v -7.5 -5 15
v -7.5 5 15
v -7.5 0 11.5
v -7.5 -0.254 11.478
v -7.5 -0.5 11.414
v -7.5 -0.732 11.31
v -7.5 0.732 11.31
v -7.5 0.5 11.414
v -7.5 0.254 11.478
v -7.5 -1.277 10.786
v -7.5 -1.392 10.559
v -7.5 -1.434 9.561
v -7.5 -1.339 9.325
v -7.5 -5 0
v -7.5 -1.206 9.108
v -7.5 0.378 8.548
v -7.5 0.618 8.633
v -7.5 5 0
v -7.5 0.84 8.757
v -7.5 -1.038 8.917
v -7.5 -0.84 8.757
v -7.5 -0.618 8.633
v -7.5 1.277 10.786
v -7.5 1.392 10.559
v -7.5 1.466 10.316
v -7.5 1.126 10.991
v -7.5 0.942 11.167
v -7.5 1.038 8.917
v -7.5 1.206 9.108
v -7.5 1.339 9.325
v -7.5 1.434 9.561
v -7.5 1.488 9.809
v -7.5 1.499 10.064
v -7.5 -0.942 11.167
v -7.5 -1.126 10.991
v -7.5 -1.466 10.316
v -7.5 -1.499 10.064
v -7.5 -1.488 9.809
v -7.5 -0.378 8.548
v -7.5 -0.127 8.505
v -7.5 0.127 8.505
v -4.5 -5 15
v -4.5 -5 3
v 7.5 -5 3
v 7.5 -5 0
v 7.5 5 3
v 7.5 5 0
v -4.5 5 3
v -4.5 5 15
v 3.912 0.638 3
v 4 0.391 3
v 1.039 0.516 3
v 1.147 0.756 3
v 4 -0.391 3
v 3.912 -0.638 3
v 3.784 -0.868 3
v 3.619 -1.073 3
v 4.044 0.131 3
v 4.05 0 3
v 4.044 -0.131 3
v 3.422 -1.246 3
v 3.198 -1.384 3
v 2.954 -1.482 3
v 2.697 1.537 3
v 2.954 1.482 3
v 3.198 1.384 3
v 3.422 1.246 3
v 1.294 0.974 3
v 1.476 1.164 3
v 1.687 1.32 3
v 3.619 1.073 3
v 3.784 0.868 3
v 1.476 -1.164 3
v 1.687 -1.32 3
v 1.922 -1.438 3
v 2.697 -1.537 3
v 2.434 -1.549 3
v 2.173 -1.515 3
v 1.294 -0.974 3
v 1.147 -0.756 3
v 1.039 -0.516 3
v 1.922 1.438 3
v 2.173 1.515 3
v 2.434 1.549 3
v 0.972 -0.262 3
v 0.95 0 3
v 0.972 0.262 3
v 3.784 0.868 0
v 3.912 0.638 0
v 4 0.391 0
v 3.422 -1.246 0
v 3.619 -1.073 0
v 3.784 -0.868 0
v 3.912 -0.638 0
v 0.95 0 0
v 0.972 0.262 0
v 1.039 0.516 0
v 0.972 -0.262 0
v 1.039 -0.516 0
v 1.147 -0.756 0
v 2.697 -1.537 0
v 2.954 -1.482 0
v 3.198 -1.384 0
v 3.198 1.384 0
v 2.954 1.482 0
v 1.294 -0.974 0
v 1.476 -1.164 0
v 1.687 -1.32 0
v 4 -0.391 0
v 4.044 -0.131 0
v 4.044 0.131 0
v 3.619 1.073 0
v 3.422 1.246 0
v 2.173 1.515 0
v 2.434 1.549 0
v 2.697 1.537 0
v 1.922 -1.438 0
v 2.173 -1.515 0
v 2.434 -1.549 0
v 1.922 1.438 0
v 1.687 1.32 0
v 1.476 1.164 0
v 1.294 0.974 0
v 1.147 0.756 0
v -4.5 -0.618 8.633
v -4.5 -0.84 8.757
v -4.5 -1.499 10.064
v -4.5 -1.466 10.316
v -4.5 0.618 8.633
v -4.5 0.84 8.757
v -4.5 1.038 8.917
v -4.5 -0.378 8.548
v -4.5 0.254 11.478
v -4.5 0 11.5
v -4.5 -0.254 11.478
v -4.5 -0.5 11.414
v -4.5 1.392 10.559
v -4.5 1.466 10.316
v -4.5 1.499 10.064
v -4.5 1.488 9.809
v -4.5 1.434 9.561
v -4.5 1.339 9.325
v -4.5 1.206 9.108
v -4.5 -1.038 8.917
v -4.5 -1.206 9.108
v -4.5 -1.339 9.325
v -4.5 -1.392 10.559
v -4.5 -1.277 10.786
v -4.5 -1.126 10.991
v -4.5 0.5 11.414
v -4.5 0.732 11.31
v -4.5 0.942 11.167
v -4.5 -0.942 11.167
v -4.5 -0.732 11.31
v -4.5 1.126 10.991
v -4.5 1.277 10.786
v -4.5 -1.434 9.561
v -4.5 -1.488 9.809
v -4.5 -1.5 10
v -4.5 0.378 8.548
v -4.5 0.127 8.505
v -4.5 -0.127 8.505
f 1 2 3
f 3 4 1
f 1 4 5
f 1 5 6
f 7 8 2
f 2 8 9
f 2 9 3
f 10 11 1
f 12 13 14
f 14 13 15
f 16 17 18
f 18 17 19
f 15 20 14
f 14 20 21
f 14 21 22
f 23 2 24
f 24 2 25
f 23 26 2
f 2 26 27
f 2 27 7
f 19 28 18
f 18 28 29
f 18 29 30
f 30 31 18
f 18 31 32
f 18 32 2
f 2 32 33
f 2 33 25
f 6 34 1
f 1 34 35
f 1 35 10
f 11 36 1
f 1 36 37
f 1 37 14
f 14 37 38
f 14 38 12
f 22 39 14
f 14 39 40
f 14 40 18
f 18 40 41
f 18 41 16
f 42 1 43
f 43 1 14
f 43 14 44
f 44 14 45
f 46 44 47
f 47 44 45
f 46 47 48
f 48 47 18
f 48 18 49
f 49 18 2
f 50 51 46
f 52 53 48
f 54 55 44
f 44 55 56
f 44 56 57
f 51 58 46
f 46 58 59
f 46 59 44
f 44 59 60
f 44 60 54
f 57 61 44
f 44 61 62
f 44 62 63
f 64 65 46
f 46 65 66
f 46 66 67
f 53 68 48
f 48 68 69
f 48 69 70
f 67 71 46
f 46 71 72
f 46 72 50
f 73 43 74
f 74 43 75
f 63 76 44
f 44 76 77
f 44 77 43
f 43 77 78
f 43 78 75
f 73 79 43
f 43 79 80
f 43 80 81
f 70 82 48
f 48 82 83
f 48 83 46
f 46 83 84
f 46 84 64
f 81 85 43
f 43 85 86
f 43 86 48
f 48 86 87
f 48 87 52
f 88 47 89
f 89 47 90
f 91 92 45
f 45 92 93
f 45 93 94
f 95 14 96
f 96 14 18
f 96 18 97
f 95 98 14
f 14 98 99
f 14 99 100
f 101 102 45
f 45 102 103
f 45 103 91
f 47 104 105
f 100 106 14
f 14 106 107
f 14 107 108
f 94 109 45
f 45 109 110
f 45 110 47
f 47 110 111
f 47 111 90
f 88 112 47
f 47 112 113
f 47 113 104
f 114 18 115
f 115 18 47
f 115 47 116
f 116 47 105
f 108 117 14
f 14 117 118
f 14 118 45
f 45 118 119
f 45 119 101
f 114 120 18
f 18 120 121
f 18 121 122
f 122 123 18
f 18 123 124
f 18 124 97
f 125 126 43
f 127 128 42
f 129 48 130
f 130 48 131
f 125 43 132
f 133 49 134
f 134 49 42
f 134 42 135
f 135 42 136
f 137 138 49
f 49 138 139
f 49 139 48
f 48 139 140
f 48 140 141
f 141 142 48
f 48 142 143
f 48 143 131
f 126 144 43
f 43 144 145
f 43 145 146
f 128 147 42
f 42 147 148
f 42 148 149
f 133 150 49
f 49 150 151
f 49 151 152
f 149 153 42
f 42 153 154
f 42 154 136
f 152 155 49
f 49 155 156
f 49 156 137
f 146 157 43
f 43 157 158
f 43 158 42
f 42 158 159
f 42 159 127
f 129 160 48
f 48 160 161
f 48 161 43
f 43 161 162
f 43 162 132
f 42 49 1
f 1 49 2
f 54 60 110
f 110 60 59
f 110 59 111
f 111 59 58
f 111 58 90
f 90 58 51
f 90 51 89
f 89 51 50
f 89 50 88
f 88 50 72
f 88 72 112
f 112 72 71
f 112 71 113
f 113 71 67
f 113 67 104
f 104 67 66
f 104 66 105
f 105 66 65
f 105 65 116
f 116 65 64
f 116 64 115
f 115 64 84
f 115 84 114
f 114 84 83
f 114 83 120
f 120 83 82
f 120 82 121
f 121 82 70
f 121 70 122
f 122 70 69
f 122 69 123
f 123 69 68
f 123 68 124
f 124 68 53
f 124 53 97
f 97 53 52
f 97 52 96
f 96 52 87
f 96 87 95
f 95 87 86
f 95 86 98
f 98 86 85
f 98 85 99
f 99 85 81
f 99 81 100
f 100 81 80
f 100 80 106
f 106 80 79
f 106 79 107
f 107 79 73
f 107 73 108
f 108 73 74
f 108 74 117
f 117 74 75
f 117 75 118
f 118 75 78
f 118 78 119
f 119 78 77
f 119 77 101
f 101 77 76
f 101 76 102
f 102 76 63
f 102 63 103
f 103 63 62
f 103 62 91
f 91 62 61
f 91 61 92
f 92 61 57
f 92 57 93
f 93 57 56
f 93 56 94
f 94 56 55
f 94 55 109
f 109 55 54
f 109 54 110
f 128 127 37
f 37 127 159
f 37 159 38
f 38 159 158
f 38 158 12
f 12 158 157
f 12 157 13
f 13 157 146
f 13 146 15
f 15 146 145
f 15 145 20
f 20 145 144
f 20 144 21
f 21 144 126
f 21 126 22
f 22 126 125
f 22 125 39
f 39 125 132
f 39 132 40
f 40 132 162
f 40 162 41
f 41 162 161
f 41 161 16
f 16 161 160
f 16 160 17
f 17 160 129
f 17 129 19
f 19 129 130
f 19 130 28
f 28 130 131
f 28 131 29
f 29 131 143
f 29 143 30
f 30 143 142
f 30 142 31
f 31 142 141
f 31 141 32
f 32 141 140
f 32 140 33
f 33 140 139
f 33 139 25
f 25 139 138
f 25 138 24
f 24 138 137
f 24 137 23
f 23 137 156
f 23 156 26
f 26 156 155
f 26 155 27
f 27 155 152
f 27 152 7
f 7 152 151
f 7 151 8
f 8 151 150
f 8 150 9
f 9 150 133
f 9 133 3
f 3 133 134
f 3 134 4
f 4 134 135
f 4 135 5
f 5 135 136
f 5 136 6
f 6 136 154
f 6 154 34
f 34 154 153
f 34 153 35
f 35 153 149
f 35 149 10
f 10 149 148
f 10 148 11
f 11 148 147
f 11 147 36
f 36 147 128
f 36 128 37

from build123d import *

# Parameters (mm, degrees)
SKETCH_1_W          = 15
SKETCH_1_H          = 10
EXTRUDE_1_DEPTH     = 3
SKETCH_2_W          = 3
SKETCH_2_H          = 10
EXTRUDE_2_DEPTH     = 12
SKETCH_3_R          = 1.55
CUT_EXTRUDE_1_DEPTH = 18.5
SKETCH_4_R          = 1.5
CUT_EXTRUDE_2_DEPTH = 22.794494718


with BuildPart() as part:
    # 草图1 → 凸台-拉伸1 (new body)
    with BuildSketch(Plane.XY):
        Rectangle(SKETCH_1_W, SKETCH_1_H)
    extrude(amount=EXTRUDE_1_DEPTH)

    # 草图2 → 凸台-拉伸2 (add)
    with BuildSketch(Plane.XY.offset(3)):
        with Locations((-6, 0)):
            Rectangle(SKETCH_2_W, SKETCH_2_H)
    extrude(amount=EXTRUDE_2_DEPTH)

    # 草图3 → 切除-拉伸1 (cut, through all)
    with BuildSketch(Plane(origin=(0, 0, 0), x_dir=(-1, 0, 0), z_dir=(0, 0, -1))):
        with Locations((-2.5, 0)):
            Circle(SKETCH_3_R)
    extrude(amount=-CUT_EXTRUDE_1_DEPTH, mode=Mode.SUBTRACT)

    # 草图4 → 切除-拉伸2 (cut, through all)
    with BuildSketch(Plane.ZY.offset(7.5)):
        with Locations((10, 0)):
            Circle(SKETCH_4_R)
    extrude(amount=-CUT_EXTRUDE_2_DEPTH, mode=Mode.SUBTRACT)


solid = part.part
